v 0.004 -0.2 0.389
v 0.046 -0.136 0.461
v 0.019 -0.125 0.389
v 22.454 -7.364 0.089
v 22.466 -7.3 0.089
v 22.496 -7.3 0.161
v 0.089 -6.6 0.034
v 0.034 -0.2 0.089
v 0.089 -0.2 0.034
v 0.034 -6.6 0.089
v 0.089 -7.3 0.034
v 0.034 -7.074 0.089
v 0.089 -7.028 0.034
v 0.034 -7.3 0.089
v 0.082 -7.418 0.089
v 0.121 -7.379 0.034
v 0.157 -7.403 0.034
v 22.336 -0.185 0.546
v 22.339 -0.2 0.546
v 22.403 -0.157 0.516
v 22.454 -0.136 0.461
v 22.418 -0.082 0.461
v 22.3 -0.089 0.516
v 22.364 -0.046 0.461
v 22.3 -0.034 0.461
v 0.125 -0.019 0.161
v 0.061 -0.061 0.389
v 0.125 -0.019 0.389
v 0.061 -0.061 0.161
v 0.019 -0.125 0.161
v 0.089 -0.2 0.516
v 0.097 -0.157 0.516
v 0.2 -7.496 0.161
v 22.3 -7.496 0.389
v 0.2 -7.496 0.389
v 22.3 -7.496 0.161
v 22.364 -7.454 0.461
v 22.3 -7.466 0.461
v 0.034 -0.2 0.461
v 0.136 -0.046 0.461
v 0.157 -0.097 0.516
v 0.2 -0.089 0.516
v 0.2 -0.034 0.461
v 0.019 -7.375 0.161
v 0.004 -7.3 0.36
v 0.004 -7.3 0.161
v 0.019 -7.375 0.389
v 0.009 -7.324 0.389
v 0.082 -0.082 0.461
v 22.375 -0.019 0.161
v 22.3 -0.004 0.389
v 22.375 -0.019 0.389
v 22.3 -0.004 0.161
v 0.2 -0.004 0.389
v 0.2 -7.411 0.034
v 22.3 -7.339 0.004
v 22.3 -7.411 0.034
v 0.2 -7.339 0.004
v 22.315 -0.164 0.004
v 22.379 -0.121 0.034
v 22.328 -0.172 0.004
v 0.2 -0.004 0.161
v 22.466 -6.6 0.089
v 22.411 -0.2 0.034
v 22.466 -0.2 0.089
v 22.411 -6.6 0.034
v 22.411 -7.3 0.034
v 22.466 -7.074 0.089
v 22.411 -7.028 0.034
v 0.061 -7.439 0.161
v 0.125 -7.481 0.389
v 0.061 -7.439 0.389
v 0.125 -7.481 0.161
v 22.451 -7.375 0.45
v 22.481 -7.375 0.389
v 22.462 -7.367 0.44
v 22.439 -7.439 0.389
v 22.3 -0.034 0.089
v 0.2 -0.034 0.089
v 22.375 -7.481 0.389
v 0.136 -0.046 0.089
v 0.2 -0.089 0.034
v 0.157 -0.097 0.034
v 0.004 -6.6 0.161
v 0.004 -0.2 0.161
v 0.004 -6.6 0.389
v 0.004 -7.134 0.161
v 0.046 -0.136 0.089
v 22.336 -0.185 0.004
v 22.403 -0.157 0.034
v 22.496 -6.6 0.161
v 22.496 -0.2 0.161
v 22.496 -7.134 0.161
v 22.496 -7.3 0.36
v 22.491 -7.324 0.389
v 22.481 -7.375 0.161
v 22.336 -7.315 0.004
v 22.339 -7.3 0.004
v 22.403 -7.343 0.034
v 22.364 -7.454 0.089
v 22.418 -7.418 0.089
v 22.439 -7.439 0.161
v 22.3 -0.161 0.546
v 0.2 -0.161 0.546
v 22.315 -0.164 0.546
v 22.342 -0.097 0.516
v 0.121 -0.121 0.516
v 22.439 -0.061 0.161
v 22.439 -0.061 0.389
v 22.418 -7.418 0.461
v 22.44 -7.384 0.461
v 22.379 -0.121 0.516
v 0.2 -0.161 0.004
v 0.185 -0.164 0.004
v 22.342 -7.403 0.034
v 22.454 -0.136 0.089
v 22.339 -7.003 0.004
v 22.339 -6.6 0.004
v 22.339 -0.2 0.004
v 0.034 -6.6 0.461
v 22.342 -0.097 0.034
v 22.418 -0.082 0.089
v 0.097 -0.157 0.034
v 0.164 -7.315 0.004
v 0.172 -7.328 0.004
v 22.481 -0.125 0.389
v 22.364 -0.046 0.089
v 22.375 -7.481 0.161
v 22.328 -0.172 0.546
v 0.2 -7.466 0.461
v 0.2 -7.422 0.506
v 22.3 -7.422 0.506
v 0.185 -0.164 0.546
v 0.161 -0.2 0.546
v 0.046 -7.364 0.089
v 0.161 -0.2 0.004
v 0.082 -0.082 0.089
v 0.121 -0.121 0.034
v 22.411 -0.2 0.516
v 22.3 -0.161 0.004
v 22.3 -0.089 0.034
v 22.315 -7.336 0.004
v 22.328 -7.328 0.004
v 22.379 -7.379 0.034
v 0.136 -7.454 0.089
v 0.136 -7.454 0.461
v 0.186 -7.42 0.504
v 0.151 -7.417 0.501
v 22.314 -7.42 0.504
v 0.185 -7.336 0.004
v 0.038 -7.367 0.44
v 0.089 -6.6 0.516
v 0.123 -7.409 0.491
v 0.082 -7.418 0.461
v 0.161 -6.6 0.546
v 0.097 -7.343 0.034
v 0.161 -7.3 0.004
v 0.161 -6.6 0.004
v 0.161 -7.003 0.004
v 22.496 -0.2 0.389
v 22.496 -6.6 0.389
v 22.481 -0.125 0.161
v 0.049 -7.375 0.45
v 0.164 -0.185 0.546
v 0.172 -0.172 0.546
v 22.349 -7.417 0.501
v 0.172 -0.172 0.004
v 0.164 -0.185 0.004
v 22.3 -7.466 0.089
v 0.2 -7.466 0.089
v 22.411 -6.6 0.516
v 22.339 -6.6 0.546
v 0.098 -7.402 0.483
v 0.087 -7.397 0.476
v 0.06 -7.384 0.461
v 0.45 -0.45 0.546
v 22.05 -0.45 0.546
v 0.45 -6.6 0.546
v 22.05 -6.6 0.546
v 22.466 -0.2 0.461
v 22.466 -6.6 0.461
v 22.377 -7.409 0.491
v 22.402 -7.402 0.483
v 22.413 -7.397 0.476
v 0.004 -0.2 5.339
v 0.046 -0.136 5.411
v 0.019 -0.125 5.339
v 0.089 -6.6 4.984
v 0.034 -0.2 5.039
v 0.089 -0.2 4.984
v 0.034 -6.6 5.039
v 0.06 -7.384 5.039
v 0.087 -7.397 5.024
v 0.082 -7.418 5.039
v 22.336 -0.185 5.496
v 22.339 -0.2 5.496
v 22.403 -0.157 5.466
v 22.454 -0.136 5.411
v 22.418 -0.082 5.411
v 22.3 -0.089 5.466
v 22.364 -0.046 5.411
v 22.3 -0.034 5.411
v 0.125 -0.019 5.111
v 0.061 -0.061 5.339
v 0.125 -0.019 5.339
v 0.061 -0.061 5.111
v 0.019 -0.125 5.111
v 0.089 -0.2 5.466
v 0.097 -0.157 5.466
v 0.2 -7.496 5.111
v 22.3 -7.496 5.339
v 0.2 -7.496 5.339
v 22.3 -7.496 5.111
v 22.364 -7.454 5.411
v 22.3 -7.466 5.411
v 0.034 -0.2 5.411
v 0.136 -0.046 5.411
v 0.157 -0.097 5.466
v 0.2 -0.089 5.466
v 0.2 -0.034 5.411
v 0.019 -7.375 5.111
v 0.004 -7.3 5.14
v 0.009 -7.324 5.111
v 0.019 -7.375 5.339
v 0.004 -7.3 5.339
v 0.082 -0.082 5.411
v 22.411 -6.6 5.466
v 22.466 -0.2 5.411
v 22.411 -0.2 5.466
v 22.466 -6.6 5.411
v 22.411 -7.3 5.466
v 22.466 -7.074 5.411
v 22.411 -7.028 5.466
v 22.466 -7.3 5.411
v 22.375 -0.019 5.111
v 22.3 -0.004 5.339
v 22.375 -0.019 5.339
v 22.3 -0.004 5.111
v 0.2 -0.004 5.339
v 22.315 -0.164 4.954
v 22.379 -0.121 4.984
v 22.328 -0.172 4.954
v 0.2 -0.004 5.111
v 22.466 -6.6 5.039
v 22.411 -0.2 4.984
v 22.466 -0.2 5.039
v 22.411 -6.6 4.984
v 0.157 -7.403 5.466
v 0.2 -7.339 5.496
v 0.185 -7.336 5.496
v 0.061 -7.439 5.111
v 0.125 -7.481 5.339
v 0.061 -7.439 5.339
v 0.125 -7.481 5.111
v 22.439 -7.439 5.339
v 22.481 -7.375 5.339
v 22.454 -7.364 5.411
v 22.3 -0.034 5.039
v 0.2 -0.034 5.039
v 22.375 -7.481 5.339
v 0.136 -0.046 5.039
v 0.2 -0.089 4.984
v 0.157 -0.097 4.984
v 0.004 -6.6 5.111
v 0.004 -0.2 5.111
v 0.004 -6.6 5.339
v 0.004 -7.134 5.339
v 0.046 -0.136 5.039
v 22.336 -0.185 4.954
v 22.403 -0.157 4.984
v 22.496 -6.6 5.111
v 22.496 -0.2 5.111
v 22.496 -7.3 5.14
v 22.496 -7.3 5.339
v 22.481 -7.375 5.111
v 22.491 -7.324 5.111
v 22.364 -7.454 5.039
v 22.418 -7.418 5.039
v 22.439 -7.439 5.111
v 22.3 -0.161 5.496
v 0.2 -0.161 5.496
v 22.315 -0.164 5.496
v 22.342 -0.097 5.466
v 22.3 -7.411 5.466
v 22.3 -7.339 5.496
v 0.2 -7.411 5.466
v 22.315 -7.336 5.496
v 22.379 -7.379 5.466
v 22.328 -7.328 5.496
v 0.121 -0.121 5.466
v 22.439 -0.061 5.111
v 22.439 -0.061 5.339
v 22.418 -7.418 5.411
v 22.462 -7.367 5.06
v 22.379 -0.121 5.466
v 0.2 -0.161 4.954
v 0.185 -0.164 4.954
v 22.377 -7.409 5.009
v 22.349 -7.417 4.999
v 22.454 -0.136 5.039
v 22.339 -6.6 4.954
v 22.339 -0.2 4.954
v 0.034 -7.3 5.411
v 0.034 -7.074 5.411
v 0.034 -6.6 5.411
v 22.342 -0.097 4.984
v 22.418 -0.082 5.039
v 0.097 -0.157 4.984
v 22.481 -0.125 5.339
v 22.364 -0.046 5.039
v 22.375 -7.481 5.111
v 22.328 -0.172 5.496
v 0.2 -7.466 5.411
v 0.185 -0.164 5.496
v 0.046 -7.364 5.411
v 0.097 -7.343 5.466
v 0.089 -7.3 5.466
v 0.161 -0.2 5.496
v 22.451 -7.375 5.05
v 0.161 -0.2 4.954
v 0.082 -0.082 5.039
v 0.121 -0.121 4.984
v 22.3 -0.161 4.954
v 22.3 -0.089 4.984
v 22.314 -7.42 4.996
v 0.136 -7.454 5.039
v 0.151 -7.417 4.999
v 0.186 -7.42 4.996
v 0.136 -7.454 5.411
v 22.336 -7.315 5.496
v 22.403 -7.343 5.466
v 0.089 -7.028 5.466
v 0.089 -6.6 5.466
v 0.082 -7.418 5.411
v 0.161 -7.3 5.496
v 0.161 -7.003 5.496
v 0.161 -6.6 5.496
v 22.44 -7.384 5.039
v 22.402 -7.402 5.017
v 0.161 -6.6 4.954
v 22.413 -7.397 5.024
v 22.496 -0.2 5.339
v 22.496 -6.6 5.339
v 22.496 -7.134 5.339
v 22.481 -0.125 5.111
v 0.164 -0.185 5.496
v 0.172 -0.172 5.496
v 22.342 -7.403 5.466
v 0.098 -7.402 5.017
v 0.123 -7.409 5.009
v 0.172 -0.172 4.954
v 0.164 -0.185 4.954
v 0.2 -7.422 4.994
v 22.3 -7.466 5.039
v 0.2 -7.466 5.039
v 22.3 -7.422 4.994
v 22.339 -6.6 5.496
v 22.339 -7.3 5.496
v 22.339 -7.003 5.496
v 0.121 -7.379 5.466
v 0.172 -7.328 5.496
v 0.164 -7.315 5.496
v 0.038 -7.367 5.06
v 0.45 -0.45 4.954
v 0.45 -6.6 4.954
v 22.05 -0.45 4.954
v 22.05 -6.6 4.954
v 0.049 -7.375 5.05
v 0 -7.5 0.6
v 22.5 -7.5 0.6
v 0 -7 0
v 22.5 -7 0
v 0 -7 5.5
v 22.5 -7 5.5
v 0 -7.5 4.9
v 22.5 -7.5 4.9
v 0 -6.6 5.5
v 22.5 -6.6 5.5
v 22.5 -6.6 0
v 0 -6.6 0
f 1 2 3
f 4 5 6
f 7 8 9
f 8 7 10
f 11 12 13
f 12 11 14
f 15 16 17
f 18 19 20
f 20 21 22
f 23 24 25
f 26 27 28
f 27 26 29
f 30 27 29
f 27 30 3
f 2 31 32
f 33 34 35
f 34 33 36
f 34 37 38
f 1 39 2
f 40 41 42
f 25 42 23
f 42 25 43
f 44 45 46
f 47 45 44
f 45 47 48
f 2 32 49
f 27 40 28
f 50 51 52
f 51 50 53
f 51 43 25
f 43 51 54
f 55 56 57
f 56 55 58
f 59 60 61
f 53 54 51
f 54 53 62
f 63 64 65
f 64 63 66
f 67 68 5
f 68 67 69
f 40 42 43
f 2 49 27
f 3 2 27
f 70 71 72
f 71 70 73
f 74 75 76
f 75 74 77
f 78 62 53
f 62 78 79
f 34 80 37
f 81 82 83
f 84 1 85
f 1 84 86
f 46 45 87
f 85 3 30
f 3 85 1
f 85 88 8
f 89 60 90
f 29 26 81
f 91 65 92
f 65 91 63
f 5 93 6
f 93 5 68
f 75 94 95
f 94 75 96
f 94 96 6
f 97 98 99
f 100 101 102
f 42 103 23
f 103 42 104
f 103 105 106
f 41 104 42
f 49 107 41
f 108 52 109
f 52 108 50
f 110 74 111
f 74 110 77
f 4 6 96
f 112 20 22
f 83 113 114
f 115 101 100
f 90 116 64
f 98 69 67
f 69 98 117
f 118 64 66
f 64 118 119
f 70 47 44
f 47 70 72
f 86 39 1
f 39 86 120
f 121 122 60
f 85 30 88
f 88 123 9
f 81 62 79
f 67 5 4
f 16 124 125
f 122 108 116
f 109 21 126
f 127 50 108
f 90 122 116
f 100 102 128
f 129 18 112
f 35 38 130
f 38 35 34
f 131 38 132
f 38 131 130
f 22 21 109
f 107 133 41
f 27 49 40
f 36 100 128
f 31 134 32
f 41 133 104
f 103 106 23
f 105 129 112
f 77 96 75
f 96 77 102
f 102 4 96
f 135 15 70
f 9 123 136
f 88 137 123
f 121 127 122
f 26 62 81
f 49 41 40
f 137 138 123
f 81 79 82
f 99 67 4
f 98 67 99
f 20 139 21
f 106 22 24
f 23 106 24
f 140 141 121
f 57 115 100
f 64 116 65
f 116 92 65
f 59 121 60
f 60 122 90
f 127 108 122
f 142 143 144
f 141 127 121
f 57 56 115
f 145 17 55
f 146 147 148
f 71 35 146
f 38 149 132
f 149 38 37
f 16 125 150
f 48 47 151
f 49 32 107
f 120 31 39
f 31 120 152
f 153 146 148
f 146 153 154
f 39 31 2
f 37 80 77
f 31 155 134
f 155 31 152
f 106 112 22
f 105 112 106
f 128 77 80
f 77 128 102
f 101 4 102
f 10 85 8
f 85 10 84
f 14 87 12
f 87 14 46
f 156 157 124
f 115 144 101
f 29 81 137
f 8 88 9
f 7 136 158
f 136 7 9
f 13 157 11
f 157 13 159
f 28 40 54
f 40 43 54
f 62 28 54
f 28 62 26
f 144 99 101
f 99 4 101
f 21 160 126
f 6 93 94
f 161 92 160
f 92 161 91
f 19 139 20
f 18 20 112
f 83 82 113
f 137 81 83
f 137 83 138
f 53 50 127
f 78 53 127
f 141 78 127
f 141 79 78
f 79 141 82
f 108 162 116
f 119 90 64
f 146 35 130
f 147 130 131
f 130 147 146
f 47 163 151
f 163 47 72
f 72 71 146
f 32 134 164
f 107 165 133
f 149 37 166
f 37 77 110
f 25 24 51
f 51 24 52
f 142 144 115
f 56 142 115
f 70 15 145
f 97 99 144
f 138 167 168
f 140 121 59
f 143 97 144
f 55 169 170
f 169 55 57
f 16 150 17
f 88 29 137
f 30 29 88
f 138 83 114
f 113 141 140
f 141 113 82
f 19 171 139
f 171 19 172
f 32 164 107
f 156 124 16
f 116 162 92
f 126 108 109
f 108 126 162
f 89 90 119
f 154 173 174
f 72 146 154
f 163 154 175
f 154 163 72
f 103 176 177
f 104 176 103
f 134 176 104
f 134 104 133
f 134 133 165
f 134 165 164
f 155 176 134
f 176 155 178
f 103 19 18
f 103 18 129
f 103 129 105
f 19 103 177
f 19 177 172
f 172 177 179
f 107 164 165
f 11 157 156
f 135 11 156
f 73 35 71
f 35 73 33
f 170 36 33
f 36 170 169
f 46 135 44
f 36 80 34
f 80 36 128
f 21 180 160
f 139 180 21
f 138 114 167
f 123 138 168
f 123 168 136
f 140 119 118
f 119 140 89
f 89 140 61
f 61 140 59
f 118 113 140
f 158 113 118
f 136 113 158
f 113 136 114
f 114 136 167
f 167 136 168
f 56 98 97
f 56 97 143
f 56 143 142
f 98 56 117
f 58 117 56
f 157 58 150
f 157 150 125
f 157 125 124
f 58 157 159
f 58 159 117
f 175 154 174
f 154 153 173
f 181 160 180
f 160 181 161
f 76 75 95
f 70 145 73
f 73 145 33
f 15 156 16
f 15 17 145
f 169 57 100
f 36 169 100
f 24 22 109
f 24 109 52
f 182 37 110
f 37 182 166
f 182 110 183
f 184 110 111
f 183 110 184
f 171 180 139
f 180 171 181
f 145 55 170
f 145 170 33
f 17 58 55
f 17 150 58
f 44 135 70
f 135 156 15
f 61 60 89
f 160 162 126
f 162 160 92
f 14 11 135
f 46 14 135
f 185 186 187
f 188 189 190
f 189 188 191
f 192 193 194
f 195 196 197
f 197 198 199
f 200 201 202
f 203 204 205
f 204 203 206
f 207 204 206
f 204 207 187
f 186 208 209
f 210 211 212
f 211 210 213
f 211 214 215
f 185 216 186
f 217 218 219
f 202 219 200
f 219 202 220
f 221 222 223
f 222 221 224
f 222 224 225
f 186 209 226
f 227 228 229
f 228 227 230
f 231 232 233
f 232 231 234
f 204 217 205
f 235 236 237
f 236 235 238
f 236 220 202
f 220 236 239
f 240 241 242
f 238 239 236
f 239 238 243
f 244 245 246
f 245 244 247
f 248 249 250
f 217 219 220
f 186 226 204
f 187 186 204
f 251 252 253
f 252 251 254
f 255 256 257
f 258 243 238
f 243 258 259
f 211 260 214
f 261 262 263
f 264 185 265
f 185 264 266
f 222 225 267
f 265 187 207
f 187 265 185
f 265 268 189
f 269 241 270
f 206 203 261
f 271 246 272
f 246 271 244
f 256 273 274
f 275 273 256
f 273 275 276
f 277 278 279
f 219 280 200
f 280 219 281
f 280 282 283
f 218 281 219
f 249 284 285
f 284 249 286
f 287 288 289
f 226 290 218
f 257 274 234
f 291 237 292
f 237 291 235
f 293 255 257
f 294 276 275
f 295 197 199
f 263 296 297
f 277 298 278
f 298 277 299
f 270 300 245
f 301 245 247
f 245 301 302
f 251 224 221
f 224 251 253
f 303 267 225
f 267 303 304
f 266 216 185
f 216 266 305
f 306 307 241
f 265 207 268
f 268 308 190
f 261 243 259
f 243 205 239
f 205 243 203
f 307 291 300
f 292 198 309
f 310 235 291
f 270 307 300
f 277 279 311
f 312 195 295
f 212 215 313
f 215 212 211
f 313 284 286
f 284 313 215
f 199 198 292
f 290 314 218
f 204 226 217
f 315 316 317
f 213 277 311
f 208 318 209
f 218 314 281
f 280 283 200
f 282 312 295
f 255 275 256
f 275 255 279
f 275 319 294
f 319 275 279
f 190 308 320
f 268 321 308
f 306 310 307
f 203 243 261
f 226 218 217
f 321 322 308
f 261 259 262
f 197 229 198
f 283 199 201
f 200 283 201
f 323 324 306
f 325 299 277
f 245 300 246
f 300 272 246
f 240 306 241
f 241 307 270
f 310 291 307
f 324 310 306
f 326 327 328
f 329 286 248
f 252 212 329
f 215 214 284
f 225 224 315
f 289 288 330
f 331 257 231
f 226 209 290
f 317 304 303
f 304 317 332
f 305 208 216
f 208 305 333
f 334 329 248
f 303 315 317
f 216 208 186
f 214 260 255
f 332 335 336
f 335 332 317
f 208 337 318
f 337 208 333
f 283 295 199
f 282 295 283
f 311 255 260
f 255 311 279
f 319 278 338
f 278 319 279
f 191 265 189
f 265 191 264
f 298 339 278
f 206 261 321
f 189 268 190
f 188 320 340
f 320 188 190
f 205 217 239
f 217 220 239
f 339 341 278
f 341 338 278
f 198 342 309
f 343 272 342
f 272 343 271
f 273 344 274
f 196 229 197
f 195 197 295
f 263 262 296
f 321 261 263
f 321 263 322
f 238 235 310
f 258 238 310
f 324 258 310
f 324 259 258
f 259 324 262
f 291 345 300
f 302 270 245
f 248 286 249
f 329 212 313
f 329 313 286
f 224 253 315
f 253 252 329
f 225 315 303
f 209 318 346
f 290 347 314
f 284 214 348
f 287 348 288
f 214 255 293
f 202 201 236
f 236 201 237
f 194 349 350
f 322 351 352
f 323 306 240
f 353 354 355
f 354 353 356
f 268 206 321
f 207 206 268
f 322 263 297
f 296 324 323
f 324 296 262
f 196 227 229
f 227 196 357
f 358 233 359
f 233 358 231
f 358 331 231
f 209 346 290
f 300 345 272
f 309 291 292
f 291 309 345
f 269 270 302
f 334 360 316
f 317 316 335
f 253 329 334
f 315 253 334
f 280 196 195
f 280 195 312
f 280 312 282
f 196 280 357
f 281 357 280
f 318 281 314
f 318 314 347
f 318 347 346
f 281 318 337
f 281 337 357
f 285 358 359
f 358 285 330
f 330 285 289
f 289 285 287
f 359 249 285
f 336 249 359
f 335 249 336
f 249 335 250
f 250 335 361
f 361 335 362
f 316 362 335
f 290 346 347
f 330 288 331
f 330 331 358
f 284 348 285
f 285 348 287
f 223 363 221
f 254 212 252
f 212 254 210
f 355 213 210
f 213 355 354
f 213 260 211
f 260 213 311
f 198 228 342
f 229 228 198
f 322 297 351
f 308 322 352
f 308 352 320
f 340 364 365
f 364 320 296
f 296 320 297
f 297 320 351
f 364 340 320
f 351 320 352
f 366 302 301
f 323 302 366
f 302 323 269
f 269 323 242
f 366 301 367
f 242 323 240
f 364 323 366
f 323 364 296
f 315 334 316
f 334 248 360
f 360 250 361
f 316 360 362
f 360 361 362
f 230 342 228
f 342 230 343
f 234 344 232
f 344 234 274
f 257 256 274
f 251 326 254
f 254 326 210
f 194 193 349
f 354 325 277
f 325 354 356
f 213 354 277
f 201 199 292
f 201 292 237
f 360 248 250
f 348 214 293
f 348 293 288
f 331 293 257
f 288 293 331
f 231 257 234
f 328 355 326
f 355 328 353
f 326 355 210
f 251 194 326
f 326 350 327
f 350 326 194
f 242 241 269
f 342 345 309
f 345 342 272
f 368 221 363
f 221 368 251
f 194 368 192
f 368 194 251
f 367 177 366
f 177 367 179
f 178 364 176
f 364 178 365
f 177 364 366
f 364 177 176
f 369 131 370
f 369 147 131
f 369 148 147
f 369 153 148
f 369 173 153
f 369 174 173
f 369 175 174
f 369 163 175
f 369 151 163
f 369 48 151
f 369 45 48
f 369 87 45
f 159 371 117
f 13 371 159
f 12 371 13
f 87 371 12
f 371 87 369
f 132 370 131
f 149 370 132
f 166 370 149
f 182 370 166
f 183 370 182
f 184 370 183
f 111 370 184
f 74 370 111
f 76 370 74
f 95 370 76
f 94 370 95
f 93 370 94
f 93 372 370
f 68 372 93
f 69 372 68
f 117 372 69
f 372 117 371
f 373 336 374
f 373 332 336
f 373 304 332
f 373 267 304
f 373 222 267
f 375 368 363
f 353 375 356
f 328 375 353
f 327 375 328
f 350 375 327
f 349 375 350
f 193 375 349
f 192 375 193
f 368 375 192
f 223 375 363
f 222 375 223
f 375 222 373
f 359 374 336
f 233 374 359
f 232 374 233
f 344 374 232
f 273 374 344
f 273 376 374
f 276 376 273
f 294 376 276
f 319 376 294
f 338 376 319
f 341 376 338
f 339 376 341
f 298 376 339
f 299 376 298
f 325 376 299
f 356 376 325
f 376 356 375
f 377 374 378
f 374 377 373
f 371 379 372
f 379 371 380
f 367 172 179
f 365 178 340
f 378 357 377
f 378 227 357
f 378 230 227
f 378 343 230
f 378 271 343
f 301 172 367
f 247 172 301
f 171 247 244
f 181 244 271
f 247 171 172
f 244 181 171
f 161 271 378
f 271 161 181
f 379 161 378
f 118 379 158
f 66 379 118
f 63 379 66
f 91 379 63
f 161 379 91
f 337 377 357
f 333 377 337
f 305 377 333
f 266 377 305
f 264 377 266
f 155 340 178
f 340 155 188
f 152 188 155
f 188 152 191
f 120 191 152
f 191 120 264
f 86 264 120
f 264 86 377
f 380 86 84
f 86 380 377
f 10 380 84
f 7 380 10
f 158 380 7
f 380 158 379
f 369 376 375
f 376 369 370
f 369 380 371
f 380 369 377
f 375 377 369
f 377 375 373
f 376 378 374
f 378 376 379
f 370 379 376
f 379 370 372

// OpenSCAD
// Book_02.stl  -  Store Versile room frame (Rev C)
// Quantity: 2   Filament: Black (PLA Basic / Matte Charcoal)
// Print: layer 0.12 mm, infill 20%, 2 walls, brim 0 mm, NO supports
// Orientation: flat  (as installed)
// Notes: Spine label = printed paper.
// The library draws parts with their front toward +Y; mirror([0,1,0]) makes the real
// part face the viewer correctly (see build.py). Edit dimensions in versile_parts.scad.
use <../versile_parts.scad>

mirror([0, 1, 0]) book_02();
